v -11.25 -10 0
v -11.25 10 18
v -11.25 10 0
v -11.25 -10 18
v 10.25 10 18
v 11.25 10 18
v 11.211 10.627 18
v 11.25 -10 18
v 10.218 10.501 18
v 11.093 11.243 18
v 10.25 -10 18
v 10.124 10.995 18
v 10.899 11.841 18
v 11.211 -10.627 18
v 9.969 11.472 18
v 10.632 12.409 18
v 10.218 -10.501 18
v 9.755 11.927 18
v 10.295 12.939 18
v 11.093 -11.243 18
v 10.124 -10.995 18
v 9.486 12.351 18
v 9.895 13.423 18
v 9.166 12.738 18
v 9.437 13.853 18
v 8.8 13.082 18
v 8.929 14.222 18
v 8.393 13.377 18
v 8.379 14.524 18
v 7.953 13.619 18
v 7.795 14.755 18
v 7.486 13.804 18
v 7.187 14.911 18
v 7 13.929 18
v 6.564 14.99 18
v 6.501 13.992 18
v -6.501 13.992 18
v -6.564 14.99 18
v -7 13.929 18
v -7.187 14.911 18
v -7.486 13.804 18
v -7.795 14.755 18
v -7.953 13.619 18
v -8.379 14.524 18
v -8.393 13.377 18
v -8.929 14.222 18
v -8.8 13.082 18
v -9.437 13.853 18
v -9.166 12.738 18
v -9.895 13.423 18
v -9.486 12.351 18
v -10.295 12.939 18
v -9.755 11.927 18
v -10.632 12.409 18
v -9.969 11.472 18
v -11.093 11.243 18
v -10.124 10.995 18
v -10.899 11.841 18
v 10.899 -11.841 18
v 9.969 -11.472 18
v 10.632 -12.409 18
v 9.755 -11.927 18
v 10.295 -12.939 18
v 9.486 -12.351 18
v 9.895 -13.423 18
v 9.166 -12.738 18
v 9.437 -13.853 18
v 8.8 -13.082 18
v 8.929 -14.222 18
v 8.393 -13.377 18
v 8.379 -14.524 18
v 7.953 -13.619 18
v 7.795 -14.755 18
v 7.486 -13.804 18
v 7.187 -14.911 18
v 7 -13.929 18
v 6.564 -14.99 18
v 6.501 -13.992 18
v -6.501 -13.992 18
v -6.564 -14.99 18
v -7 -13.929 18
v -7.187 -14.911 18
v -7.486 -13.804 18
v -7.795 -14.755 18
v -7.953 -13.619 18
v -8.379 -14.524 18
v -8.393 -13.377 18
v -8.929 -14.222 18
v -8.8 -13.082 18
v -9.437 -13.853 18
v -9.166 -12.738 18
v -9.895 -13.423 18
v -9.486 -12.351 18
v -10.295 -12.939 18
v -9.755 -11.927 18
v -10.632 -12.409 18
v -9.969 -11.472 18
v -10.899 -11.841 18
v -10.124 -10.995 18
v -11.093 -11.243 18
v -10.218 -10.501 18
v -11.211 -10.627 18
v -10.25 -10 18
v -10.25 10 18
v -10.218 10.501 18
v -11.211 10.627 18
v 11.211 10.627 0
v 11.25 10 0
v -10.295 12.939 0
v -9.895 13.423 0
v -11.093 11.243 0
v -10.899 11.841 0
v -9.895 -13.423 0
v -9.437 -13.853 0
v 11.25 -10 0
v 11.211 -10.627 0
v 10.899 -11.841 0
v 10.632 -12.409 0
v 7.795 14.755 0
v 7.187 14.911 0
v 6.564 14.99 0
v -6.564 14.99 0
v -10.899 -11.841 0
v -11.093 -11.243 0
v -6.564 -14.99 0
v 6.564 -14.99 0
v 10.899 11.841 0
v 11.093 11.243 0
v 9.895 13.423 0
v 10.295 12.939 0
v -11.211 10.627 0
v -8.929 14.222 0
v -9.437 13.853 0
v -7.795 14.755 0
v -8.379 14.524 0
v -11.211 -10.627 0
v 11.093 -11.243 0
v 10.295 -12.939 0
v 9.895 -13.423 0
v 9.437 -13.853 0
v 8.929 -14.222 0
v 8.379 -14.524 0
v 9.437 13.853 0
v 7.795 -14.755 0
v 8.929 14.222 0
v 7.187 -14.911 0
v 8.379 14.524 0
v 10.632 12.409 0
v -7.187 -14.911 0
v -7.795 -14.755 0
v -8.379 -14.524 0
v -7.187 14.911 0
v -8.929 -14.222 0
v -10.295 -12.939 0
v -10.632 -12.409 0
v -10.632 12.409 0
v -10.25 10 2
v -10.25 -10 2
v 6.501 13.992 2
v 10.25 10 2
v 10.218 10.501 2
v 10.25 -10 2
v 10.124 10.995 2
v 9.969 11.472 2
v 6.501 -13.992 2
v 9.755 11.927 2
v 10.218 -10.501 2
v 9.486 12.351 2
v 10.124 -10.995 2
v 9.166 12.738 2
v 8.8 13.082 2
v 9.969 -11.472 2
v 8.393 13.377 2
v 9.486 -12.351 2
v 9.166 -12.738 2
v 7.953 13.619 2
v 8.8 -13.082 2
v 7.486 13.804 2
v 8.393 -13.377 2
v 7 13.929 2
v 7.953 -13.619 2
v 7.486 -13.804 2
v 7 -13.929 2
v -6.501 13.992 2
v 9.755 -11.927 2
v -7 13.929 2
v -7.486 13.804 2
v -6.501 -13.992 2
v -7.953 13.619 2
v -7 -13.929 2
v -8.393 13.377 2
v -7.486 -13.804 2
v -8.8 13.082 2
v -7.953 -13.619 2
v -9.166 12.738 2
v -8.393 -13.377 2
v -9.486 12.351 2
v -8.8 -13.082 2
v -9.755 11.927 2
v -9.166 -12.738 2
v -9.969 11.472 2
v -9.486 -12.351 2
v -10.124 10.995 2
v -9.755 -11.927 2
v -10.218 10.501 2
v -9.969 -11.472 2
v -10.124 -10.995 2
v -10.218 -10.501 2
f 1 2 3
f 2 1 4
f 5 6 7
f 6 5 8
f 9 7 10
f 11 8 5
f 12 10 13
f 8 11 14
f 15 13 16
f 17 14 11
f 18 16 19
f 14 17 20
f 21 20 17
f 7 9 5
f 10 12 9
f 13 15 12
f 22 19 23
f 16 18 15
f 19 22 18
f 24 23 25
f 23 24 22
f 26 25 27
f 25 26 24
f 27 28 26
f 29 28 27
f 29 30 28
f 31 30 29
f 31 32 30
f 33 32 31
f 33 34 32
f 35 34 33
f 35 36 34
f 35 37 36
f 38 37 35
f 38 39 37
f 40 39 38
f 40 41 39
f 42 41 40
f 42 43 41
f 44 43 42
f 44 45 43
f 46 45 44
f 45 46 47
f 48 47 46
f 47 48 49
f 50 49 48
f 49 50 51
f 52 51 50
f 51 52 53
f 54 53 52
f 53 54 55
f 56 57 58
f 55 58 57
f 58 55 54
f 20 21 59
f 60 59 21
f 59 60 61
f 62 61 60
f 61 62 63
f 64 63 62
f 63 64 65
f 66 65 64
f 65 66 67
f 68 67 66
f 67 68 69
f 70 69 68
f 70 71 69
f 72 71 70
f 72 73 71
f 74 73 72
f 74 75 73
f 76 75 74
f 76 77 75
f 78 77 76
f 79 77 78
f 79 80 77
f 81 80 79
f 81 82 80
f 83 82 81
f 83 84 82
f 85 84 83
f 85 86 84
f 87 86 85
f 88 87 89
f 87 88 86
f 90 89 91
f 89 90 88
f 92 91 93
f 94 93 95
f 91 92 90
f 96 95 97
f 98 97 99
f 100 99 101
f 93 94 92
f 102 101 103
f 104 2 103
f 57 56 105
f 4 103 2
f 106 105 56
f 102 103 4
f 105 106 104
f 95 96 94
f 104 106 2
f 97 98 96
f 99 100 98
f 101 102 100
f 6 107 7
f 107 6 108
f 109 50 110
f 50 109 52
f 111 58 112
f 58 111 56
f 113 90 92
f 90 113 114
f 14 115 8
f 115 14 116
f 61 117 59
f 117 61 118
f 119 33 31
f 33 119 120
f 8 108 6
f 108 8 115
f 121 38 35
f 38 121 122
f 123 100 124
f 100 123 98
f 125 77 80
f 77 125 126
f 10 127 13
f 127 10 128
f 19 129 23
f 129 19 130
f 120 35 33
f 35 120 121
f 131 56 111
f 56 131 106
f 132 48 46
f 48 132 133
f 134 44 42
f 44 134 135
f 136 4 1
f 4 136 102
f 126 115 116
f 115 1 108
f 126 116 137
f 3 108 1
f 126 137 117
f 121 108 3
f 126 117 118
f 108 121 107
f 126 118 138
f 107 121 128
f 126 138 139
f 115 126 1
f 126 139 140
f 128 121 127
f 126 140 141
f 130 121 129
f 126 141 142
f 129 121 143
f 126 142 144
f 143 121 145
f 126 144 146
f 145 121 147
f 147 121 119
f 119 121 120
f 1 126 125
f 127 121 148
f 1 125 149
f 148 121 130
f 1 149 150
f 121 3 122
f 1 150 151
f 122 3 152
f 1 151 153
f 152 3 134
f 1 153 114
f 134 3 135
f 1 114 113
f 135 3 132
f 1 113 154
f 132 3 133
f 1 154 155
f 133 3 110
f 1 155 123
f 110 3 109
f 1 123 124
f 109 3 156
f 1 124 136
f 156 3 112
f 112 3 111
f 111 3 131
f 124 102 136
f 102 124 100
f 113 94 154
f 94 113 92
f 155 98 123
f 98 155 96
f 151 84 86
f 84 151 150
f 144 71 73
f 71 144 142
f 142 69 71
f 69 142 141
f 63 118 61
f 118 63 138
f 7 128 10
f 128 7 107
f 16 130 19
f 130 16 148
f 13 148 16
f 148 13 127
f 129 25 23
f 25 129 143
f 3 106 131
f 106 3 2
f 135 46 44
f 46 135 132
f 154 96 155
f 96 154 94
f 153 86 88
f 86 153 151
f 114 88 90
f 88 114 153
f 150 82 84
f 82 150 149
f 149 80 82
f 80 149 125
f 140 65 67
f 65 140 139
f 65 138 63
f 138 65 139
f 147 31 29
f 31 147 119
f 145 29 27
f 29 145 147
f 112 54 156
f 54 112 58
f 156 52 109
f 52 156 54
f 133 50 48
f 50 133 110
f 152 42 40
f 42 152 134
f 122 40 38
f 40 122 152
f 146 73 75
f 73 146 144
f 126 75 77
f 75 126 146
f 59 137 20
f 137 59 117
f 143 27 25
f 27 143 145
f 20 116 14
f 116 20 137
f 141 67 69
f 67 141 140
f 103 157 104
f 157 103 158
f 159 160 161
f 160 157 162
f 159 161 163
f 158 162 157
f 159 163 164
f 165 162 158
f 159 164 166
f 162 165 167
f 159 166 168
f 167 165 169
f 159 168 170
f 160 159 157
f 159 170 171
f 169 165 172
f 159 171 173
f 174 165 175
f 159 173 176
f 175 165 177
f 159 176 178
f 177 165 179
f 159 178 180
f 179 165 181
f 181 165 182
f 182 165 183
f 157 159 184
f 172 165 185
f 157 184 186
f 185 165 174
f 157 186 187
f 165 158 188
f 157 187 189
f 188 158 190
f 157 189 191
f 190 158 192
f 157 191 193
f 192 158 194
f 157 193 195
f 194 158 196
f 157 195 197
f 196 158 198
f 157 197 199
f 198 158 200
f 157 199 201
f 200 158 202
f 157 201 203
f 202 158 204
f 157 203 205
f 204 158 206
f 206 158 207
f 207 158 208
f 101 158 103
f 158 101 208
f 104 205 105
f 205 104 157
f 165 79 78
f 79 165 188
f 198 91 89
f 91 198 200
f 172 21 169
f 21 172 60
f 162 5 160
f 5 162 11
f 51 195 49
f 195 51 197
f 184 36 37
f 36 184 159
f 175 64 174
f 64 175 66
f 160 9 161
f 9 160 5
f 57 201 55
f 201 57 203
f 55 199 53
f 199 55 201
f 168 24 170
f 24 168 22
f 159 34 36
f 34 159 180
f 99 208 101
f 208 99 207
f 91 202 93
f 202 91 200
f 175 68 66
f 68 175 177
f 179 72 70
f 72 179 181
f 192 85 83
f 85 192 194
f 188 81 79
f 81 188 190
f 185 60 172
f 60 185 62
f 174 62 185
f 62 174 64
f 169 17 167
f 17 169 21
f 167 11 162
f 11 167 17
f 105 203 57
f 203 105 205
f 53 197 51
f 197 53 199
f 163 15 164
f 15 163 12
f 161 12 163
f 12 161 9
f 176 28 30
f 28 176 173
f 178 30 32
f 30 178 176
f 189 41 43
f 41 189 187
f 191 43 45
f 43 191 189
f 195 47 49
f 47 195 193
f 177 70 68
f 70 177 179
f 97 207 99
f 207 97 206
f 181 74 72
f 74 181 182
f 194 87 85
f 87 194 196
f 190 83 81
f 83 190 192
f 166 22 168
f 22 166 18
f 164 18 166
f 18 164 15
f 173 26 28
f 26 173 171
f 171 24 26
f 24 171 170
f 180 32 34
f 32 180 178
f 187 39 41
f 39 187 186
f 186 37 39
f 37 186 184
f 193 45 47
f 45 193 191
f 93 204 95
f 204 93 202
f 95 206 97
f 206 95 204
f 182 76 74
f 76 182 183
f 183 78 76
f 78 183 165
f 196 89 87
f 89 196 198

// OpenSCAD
$fn = 50;


difference() {
	union() {
		hull() {
			translate(v = [-6.2500000000, 10.0000000000, 0]) {
				cylinder(h = 18, r = 5);
			}
			translate(v = [6.2500000000, 10.0000000000, 0]) {
				cylinder(h = 18, r = 5);
			}
			translate(v = [-6.2500000000, -10.0000000000, 0]) {
				cylinder(h = 18, r = 5);
			}
			translate(v = [6.2500000000, -10.0000000000, 0]) {
				cylinder(h = 18, r = 5);
			}
		}
	}
	union() {
		translate(v = [0, 0, 2]) {
			hull() {
				translate(v = [-6.2500000000, 10.0000000000, 0]) {
					cylinder(h = 16, r = 4);
				}
				translate(v = [6.2500000000, 10.0000000000, 0]) {
					cylinder(h = 16, r = 4);
				}
				translate(v = [-6.2500000000, -10.0000000000, 0]) {
					cylinder(h = 16, r = 4);
				}
				translate(v = [6.2500000000, -10.0000000000, 0]) {
					cylinder(h = 16, r = 4);
				}
			}
		}
	}
}
